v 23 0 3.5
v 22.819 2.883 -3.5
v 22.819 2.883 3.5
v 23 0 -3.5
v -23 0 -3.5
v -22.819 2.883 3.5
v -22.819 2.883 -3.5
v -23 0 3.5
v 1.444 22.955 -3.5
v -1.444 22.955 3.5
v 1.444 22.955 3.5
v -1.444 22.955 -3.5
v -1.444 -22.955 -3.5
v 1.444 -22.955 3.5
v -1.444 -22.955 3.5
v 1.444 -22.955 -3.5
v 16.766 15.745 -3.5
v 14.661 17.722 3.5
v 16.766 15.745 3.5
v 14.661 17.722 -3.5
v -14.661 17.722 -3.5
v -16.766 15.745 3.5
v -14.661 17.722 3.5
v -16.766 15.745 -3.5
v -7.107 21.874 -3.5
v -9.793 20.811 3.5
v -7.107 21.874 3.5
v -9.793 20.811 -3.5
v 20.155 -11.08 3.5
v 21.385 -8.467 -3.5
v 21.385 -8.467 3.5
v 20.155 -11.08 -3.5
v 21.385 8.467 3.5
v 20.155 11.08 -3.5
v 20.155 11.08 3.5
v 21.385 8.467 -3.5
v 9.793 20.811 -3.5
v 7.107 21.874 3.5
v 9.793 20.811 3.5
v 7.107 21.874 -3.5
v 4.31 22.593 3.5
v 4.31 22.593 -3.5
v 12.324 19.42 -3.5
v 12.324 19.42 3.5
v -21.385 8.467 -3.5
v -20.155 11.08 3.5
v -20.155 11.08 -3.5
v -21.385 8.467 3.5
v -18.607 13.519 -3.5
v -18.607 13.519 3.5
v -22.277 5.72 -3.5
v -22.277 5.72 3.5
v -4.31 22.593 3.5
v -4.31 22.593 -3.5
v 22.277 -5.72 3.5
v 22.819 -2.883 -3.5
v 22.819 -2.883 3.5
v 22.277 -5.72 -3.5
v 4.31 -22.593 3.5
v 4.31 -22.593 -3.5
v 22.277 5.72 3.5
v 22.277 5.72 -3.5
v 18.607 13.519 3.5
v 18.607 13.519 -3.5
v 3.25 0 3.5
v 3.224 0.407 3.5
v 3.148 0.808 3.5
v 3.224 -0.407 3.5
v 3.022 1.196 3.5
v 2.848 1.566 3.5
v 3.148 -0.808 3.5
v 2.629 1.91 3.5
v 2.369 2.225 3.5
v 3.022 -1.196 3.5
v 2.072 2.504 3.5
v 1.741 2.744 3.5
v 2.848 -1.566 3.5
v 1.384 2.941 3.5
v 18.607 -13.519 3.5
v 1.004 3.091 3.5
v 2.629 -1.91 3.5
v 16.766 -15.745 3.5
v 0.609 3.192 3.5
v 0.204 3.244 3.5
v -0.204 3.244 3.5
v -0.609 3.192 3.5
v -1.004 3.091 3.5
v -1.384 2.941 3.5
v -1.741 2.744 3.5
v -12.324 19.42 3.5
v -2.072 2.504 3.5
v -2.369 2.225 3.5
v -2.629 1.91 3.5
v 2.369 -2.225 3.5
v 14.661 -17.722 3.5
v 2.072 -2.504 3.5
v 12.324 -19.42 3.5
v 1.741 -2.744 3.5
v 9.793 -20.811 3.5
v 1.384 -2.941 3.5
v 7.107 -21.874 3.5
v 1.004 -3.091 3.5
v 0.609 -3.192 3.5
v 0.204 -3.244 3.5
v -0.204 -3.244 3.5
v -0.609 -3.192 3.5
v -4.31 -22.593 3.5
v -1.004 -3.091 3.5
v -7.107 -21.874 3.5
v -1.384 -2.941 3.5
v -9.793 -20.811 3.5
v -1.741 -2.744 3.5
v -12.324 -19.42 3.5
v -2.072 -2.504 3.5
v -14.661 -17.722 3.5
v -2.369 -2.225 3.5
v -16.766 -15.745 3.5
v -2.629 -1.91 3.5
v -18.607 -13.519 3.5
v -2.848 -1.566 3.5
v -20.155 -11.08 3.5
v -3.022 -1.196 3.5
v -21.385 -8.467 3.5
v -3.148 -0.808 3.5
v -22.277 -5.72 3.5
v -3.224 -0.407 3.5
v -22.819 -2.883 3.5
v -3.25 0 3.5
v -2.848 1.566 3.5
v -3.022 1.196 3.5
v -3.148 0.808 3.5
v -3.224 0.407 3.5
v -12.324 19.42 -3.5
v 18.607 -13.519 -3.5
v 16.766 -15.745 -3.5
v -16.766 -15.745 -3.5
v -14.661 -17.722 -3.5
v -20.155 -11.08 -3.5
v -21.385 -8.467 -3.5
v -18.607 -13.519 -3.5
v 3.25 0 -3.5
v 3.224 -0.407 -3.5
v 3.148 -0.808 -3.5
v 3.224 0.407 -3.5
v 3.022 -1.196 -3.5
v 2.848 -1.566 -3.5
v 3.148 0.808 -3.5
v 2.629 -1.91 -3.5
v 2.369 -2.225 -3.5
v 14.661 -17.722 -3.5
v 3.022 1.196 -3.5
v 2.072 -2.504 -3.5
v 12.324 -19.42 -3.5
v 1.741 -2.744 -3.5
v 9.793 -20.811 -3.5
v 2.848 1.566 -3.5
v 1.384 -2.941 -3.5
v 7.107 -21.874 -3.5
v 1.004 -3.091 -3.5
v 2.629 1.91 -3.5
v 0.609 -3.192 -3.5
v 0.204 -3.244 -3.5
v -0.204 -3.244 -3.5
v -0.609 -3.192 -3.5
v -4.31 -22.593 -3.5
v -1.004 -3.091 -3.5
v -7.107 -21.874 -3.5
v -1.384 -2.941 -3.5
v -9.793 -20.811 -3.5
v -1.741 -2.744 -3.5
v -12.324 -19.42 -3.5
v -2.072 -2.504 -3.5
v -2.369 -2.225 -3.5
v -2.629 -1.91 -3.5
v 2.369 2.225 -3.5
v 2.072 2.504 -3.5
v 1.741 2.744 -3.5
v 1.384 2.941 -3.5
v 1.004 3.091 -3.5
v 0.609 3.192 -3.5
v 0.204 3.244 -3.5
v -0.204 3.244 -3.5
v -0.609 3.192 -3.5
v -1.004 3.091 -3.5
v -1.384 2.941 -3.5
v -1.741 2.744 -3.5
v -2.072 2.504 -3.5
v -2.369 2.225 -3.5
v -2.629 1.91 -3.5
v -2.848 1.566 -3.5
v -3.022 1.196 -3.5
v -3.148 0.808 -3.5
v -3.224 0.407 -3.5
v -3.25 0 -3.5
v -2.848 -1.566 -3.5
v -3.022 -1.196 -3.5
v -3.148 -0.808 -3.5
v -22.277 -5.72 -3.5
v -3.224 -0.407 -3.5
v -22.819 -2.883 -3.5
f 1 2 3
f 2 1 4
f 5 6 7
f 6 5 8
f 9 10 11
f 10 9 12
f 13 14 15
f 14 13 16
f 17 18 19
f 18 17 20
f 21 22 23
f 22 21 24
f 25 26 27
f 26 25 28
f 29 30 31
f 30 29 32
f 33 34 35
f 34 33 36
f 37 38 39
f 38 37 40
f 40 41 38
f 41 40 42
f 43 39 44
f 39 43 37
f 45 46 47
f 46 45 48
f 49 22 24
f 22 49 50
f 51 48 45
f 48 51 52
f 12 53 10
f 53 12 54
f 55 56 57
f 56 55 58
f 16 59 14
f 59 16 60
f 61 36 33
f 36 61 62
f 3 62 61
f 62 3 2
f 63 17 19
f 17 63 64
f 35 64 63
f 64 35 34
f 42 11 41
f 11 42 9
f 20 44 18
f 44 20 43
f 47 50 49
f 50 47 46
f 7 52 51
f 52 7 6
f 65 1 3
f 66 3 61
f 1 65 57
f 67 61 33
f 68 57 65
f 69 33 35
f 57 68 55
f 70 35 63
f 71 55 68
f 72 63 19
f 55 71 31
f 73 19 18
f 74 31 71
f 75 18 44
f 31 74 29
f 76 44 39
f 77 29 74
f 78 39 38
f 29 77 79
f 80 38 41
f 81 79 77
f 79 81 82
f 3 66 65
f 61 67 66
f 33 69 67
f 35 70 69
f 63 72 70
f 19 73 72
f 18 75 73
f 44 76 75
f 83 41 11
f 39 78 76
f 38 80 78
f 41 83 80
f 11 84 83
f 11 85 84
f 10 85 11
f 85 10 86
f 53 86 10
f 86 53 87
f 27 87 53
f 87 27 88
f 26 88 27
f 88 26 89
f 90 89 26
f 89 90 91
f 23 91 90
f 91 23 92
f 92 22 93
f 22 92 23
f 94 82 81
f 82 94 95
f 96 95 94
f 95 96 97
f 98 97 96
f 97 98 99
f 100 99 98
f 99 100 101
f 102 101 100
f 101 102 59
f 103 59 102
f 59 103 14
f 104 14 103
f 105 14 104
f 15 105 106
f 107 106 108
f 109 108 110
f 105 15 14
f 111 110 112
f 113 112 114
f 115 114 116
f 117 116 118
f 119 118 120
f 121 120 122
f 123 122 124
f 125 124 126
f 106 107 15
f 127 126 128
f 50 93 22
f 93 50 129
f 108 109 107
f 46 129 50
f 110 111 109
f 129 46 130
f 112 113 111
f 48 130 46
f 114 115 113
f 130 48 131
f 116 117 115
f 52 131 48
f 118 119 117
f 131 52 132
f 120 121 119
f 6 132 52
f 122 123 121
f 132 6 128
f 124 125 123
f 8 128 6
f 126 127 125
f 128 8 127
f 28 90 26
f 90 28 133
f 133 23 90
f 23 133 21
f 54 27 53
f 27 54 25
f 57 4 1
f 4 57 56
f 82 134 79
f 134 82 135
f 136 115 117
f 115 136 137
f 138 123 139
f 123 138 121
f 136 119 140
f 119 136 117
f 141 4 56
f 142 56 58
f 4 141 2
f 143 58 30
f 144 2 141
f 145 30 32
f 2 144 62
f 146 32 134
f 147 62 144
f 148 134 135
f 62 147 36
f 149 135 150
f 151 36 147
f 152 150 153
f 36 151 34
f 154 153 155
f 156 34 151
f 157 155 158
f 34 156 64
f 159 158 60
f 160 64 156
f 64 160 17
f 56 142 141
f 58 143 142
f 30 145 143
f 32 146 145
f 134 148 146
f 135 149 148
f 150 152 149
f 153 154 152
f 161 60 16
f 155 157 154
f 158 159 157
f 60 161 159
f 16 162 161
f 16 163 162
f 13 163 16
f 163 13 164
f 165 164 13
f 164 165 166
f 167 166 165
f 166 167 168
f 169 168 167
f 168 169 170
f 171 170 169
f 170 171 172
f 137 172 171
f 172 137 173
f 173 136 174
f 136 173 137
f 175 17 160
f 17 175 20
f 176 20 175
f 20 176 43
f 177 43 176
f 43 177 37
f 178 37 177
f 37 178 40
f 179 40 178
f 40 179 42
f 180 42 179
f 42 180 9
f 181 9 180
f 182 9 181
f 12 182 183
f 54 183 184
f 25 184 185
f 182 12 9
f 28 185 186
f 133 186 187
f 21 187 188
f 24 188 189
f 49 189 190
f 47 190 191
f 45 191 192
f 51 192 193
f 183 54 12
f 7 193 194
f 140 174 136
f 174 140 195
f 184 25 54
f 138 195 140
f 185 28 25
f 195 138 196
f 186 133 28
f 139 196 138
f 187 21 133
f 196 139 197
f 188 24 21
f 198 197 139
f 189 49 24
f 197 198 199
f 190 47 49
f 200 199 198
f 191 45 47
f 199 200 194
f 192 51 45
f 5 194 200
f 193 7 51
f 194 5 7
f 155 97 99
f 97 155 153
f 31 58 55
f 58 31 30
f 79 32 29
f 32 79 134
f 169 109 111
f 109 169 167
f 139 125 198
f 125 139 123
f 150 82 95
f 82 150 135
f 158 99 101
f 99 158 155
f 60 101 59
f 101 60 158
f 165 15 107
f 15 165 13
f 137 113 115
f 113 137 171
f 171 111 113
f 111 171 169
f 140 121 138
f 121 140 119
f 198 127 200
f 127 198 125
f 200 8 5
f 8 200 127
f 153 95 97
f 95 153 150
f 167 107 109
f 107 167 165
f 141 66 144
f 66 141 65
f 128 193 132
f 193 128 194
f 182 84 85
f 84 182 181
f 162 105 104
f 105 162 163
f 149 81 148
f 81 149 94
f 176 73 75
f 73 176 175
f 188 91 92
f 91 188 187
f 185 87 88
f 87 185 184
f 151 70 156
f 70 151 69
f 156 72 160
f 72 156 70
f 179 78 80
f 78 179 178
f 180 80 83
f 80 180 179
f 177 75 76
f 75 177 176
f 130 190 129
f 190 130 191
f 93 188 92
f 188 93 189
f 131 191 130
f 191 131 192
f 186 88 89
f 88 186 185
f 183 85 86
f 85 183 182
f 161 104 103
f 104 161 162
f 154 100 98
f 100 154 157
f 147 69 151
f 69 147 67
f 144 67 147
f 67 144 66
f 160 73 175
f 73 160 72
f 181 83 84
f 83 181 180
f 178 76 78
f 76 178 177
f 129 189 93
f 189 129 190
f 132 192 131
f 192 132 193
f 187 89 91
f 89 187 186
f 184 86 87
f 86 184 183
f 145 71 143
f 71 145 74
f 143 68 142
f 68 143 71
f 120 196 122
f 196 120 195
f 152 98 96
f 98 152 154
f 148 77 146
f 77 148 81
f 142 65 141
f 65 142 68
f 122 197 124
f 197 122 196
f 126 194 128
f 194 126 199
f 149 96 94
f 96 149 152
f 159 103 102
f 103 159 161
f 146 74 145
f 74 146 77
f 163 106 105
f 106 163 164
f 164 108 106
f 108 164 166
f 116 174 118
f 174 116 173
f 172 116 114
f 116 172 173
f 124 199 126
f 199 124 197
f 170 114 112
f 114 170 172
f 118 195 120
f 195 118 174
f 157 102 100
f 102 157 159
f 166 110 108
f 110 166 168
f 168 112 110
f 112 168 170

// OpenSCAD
$fn = 50;


difference() {
	union() {
		translate(v = [0, 0, -3.5000000000]) {
			cylinder(h = 7, r = 23.0000000000);
		}
	}
	union() {
		translate(v = [0, 0, -100.0000000000]) {
			cylinder(h = 200, r = 3.2500000000);
		}
	}
}
